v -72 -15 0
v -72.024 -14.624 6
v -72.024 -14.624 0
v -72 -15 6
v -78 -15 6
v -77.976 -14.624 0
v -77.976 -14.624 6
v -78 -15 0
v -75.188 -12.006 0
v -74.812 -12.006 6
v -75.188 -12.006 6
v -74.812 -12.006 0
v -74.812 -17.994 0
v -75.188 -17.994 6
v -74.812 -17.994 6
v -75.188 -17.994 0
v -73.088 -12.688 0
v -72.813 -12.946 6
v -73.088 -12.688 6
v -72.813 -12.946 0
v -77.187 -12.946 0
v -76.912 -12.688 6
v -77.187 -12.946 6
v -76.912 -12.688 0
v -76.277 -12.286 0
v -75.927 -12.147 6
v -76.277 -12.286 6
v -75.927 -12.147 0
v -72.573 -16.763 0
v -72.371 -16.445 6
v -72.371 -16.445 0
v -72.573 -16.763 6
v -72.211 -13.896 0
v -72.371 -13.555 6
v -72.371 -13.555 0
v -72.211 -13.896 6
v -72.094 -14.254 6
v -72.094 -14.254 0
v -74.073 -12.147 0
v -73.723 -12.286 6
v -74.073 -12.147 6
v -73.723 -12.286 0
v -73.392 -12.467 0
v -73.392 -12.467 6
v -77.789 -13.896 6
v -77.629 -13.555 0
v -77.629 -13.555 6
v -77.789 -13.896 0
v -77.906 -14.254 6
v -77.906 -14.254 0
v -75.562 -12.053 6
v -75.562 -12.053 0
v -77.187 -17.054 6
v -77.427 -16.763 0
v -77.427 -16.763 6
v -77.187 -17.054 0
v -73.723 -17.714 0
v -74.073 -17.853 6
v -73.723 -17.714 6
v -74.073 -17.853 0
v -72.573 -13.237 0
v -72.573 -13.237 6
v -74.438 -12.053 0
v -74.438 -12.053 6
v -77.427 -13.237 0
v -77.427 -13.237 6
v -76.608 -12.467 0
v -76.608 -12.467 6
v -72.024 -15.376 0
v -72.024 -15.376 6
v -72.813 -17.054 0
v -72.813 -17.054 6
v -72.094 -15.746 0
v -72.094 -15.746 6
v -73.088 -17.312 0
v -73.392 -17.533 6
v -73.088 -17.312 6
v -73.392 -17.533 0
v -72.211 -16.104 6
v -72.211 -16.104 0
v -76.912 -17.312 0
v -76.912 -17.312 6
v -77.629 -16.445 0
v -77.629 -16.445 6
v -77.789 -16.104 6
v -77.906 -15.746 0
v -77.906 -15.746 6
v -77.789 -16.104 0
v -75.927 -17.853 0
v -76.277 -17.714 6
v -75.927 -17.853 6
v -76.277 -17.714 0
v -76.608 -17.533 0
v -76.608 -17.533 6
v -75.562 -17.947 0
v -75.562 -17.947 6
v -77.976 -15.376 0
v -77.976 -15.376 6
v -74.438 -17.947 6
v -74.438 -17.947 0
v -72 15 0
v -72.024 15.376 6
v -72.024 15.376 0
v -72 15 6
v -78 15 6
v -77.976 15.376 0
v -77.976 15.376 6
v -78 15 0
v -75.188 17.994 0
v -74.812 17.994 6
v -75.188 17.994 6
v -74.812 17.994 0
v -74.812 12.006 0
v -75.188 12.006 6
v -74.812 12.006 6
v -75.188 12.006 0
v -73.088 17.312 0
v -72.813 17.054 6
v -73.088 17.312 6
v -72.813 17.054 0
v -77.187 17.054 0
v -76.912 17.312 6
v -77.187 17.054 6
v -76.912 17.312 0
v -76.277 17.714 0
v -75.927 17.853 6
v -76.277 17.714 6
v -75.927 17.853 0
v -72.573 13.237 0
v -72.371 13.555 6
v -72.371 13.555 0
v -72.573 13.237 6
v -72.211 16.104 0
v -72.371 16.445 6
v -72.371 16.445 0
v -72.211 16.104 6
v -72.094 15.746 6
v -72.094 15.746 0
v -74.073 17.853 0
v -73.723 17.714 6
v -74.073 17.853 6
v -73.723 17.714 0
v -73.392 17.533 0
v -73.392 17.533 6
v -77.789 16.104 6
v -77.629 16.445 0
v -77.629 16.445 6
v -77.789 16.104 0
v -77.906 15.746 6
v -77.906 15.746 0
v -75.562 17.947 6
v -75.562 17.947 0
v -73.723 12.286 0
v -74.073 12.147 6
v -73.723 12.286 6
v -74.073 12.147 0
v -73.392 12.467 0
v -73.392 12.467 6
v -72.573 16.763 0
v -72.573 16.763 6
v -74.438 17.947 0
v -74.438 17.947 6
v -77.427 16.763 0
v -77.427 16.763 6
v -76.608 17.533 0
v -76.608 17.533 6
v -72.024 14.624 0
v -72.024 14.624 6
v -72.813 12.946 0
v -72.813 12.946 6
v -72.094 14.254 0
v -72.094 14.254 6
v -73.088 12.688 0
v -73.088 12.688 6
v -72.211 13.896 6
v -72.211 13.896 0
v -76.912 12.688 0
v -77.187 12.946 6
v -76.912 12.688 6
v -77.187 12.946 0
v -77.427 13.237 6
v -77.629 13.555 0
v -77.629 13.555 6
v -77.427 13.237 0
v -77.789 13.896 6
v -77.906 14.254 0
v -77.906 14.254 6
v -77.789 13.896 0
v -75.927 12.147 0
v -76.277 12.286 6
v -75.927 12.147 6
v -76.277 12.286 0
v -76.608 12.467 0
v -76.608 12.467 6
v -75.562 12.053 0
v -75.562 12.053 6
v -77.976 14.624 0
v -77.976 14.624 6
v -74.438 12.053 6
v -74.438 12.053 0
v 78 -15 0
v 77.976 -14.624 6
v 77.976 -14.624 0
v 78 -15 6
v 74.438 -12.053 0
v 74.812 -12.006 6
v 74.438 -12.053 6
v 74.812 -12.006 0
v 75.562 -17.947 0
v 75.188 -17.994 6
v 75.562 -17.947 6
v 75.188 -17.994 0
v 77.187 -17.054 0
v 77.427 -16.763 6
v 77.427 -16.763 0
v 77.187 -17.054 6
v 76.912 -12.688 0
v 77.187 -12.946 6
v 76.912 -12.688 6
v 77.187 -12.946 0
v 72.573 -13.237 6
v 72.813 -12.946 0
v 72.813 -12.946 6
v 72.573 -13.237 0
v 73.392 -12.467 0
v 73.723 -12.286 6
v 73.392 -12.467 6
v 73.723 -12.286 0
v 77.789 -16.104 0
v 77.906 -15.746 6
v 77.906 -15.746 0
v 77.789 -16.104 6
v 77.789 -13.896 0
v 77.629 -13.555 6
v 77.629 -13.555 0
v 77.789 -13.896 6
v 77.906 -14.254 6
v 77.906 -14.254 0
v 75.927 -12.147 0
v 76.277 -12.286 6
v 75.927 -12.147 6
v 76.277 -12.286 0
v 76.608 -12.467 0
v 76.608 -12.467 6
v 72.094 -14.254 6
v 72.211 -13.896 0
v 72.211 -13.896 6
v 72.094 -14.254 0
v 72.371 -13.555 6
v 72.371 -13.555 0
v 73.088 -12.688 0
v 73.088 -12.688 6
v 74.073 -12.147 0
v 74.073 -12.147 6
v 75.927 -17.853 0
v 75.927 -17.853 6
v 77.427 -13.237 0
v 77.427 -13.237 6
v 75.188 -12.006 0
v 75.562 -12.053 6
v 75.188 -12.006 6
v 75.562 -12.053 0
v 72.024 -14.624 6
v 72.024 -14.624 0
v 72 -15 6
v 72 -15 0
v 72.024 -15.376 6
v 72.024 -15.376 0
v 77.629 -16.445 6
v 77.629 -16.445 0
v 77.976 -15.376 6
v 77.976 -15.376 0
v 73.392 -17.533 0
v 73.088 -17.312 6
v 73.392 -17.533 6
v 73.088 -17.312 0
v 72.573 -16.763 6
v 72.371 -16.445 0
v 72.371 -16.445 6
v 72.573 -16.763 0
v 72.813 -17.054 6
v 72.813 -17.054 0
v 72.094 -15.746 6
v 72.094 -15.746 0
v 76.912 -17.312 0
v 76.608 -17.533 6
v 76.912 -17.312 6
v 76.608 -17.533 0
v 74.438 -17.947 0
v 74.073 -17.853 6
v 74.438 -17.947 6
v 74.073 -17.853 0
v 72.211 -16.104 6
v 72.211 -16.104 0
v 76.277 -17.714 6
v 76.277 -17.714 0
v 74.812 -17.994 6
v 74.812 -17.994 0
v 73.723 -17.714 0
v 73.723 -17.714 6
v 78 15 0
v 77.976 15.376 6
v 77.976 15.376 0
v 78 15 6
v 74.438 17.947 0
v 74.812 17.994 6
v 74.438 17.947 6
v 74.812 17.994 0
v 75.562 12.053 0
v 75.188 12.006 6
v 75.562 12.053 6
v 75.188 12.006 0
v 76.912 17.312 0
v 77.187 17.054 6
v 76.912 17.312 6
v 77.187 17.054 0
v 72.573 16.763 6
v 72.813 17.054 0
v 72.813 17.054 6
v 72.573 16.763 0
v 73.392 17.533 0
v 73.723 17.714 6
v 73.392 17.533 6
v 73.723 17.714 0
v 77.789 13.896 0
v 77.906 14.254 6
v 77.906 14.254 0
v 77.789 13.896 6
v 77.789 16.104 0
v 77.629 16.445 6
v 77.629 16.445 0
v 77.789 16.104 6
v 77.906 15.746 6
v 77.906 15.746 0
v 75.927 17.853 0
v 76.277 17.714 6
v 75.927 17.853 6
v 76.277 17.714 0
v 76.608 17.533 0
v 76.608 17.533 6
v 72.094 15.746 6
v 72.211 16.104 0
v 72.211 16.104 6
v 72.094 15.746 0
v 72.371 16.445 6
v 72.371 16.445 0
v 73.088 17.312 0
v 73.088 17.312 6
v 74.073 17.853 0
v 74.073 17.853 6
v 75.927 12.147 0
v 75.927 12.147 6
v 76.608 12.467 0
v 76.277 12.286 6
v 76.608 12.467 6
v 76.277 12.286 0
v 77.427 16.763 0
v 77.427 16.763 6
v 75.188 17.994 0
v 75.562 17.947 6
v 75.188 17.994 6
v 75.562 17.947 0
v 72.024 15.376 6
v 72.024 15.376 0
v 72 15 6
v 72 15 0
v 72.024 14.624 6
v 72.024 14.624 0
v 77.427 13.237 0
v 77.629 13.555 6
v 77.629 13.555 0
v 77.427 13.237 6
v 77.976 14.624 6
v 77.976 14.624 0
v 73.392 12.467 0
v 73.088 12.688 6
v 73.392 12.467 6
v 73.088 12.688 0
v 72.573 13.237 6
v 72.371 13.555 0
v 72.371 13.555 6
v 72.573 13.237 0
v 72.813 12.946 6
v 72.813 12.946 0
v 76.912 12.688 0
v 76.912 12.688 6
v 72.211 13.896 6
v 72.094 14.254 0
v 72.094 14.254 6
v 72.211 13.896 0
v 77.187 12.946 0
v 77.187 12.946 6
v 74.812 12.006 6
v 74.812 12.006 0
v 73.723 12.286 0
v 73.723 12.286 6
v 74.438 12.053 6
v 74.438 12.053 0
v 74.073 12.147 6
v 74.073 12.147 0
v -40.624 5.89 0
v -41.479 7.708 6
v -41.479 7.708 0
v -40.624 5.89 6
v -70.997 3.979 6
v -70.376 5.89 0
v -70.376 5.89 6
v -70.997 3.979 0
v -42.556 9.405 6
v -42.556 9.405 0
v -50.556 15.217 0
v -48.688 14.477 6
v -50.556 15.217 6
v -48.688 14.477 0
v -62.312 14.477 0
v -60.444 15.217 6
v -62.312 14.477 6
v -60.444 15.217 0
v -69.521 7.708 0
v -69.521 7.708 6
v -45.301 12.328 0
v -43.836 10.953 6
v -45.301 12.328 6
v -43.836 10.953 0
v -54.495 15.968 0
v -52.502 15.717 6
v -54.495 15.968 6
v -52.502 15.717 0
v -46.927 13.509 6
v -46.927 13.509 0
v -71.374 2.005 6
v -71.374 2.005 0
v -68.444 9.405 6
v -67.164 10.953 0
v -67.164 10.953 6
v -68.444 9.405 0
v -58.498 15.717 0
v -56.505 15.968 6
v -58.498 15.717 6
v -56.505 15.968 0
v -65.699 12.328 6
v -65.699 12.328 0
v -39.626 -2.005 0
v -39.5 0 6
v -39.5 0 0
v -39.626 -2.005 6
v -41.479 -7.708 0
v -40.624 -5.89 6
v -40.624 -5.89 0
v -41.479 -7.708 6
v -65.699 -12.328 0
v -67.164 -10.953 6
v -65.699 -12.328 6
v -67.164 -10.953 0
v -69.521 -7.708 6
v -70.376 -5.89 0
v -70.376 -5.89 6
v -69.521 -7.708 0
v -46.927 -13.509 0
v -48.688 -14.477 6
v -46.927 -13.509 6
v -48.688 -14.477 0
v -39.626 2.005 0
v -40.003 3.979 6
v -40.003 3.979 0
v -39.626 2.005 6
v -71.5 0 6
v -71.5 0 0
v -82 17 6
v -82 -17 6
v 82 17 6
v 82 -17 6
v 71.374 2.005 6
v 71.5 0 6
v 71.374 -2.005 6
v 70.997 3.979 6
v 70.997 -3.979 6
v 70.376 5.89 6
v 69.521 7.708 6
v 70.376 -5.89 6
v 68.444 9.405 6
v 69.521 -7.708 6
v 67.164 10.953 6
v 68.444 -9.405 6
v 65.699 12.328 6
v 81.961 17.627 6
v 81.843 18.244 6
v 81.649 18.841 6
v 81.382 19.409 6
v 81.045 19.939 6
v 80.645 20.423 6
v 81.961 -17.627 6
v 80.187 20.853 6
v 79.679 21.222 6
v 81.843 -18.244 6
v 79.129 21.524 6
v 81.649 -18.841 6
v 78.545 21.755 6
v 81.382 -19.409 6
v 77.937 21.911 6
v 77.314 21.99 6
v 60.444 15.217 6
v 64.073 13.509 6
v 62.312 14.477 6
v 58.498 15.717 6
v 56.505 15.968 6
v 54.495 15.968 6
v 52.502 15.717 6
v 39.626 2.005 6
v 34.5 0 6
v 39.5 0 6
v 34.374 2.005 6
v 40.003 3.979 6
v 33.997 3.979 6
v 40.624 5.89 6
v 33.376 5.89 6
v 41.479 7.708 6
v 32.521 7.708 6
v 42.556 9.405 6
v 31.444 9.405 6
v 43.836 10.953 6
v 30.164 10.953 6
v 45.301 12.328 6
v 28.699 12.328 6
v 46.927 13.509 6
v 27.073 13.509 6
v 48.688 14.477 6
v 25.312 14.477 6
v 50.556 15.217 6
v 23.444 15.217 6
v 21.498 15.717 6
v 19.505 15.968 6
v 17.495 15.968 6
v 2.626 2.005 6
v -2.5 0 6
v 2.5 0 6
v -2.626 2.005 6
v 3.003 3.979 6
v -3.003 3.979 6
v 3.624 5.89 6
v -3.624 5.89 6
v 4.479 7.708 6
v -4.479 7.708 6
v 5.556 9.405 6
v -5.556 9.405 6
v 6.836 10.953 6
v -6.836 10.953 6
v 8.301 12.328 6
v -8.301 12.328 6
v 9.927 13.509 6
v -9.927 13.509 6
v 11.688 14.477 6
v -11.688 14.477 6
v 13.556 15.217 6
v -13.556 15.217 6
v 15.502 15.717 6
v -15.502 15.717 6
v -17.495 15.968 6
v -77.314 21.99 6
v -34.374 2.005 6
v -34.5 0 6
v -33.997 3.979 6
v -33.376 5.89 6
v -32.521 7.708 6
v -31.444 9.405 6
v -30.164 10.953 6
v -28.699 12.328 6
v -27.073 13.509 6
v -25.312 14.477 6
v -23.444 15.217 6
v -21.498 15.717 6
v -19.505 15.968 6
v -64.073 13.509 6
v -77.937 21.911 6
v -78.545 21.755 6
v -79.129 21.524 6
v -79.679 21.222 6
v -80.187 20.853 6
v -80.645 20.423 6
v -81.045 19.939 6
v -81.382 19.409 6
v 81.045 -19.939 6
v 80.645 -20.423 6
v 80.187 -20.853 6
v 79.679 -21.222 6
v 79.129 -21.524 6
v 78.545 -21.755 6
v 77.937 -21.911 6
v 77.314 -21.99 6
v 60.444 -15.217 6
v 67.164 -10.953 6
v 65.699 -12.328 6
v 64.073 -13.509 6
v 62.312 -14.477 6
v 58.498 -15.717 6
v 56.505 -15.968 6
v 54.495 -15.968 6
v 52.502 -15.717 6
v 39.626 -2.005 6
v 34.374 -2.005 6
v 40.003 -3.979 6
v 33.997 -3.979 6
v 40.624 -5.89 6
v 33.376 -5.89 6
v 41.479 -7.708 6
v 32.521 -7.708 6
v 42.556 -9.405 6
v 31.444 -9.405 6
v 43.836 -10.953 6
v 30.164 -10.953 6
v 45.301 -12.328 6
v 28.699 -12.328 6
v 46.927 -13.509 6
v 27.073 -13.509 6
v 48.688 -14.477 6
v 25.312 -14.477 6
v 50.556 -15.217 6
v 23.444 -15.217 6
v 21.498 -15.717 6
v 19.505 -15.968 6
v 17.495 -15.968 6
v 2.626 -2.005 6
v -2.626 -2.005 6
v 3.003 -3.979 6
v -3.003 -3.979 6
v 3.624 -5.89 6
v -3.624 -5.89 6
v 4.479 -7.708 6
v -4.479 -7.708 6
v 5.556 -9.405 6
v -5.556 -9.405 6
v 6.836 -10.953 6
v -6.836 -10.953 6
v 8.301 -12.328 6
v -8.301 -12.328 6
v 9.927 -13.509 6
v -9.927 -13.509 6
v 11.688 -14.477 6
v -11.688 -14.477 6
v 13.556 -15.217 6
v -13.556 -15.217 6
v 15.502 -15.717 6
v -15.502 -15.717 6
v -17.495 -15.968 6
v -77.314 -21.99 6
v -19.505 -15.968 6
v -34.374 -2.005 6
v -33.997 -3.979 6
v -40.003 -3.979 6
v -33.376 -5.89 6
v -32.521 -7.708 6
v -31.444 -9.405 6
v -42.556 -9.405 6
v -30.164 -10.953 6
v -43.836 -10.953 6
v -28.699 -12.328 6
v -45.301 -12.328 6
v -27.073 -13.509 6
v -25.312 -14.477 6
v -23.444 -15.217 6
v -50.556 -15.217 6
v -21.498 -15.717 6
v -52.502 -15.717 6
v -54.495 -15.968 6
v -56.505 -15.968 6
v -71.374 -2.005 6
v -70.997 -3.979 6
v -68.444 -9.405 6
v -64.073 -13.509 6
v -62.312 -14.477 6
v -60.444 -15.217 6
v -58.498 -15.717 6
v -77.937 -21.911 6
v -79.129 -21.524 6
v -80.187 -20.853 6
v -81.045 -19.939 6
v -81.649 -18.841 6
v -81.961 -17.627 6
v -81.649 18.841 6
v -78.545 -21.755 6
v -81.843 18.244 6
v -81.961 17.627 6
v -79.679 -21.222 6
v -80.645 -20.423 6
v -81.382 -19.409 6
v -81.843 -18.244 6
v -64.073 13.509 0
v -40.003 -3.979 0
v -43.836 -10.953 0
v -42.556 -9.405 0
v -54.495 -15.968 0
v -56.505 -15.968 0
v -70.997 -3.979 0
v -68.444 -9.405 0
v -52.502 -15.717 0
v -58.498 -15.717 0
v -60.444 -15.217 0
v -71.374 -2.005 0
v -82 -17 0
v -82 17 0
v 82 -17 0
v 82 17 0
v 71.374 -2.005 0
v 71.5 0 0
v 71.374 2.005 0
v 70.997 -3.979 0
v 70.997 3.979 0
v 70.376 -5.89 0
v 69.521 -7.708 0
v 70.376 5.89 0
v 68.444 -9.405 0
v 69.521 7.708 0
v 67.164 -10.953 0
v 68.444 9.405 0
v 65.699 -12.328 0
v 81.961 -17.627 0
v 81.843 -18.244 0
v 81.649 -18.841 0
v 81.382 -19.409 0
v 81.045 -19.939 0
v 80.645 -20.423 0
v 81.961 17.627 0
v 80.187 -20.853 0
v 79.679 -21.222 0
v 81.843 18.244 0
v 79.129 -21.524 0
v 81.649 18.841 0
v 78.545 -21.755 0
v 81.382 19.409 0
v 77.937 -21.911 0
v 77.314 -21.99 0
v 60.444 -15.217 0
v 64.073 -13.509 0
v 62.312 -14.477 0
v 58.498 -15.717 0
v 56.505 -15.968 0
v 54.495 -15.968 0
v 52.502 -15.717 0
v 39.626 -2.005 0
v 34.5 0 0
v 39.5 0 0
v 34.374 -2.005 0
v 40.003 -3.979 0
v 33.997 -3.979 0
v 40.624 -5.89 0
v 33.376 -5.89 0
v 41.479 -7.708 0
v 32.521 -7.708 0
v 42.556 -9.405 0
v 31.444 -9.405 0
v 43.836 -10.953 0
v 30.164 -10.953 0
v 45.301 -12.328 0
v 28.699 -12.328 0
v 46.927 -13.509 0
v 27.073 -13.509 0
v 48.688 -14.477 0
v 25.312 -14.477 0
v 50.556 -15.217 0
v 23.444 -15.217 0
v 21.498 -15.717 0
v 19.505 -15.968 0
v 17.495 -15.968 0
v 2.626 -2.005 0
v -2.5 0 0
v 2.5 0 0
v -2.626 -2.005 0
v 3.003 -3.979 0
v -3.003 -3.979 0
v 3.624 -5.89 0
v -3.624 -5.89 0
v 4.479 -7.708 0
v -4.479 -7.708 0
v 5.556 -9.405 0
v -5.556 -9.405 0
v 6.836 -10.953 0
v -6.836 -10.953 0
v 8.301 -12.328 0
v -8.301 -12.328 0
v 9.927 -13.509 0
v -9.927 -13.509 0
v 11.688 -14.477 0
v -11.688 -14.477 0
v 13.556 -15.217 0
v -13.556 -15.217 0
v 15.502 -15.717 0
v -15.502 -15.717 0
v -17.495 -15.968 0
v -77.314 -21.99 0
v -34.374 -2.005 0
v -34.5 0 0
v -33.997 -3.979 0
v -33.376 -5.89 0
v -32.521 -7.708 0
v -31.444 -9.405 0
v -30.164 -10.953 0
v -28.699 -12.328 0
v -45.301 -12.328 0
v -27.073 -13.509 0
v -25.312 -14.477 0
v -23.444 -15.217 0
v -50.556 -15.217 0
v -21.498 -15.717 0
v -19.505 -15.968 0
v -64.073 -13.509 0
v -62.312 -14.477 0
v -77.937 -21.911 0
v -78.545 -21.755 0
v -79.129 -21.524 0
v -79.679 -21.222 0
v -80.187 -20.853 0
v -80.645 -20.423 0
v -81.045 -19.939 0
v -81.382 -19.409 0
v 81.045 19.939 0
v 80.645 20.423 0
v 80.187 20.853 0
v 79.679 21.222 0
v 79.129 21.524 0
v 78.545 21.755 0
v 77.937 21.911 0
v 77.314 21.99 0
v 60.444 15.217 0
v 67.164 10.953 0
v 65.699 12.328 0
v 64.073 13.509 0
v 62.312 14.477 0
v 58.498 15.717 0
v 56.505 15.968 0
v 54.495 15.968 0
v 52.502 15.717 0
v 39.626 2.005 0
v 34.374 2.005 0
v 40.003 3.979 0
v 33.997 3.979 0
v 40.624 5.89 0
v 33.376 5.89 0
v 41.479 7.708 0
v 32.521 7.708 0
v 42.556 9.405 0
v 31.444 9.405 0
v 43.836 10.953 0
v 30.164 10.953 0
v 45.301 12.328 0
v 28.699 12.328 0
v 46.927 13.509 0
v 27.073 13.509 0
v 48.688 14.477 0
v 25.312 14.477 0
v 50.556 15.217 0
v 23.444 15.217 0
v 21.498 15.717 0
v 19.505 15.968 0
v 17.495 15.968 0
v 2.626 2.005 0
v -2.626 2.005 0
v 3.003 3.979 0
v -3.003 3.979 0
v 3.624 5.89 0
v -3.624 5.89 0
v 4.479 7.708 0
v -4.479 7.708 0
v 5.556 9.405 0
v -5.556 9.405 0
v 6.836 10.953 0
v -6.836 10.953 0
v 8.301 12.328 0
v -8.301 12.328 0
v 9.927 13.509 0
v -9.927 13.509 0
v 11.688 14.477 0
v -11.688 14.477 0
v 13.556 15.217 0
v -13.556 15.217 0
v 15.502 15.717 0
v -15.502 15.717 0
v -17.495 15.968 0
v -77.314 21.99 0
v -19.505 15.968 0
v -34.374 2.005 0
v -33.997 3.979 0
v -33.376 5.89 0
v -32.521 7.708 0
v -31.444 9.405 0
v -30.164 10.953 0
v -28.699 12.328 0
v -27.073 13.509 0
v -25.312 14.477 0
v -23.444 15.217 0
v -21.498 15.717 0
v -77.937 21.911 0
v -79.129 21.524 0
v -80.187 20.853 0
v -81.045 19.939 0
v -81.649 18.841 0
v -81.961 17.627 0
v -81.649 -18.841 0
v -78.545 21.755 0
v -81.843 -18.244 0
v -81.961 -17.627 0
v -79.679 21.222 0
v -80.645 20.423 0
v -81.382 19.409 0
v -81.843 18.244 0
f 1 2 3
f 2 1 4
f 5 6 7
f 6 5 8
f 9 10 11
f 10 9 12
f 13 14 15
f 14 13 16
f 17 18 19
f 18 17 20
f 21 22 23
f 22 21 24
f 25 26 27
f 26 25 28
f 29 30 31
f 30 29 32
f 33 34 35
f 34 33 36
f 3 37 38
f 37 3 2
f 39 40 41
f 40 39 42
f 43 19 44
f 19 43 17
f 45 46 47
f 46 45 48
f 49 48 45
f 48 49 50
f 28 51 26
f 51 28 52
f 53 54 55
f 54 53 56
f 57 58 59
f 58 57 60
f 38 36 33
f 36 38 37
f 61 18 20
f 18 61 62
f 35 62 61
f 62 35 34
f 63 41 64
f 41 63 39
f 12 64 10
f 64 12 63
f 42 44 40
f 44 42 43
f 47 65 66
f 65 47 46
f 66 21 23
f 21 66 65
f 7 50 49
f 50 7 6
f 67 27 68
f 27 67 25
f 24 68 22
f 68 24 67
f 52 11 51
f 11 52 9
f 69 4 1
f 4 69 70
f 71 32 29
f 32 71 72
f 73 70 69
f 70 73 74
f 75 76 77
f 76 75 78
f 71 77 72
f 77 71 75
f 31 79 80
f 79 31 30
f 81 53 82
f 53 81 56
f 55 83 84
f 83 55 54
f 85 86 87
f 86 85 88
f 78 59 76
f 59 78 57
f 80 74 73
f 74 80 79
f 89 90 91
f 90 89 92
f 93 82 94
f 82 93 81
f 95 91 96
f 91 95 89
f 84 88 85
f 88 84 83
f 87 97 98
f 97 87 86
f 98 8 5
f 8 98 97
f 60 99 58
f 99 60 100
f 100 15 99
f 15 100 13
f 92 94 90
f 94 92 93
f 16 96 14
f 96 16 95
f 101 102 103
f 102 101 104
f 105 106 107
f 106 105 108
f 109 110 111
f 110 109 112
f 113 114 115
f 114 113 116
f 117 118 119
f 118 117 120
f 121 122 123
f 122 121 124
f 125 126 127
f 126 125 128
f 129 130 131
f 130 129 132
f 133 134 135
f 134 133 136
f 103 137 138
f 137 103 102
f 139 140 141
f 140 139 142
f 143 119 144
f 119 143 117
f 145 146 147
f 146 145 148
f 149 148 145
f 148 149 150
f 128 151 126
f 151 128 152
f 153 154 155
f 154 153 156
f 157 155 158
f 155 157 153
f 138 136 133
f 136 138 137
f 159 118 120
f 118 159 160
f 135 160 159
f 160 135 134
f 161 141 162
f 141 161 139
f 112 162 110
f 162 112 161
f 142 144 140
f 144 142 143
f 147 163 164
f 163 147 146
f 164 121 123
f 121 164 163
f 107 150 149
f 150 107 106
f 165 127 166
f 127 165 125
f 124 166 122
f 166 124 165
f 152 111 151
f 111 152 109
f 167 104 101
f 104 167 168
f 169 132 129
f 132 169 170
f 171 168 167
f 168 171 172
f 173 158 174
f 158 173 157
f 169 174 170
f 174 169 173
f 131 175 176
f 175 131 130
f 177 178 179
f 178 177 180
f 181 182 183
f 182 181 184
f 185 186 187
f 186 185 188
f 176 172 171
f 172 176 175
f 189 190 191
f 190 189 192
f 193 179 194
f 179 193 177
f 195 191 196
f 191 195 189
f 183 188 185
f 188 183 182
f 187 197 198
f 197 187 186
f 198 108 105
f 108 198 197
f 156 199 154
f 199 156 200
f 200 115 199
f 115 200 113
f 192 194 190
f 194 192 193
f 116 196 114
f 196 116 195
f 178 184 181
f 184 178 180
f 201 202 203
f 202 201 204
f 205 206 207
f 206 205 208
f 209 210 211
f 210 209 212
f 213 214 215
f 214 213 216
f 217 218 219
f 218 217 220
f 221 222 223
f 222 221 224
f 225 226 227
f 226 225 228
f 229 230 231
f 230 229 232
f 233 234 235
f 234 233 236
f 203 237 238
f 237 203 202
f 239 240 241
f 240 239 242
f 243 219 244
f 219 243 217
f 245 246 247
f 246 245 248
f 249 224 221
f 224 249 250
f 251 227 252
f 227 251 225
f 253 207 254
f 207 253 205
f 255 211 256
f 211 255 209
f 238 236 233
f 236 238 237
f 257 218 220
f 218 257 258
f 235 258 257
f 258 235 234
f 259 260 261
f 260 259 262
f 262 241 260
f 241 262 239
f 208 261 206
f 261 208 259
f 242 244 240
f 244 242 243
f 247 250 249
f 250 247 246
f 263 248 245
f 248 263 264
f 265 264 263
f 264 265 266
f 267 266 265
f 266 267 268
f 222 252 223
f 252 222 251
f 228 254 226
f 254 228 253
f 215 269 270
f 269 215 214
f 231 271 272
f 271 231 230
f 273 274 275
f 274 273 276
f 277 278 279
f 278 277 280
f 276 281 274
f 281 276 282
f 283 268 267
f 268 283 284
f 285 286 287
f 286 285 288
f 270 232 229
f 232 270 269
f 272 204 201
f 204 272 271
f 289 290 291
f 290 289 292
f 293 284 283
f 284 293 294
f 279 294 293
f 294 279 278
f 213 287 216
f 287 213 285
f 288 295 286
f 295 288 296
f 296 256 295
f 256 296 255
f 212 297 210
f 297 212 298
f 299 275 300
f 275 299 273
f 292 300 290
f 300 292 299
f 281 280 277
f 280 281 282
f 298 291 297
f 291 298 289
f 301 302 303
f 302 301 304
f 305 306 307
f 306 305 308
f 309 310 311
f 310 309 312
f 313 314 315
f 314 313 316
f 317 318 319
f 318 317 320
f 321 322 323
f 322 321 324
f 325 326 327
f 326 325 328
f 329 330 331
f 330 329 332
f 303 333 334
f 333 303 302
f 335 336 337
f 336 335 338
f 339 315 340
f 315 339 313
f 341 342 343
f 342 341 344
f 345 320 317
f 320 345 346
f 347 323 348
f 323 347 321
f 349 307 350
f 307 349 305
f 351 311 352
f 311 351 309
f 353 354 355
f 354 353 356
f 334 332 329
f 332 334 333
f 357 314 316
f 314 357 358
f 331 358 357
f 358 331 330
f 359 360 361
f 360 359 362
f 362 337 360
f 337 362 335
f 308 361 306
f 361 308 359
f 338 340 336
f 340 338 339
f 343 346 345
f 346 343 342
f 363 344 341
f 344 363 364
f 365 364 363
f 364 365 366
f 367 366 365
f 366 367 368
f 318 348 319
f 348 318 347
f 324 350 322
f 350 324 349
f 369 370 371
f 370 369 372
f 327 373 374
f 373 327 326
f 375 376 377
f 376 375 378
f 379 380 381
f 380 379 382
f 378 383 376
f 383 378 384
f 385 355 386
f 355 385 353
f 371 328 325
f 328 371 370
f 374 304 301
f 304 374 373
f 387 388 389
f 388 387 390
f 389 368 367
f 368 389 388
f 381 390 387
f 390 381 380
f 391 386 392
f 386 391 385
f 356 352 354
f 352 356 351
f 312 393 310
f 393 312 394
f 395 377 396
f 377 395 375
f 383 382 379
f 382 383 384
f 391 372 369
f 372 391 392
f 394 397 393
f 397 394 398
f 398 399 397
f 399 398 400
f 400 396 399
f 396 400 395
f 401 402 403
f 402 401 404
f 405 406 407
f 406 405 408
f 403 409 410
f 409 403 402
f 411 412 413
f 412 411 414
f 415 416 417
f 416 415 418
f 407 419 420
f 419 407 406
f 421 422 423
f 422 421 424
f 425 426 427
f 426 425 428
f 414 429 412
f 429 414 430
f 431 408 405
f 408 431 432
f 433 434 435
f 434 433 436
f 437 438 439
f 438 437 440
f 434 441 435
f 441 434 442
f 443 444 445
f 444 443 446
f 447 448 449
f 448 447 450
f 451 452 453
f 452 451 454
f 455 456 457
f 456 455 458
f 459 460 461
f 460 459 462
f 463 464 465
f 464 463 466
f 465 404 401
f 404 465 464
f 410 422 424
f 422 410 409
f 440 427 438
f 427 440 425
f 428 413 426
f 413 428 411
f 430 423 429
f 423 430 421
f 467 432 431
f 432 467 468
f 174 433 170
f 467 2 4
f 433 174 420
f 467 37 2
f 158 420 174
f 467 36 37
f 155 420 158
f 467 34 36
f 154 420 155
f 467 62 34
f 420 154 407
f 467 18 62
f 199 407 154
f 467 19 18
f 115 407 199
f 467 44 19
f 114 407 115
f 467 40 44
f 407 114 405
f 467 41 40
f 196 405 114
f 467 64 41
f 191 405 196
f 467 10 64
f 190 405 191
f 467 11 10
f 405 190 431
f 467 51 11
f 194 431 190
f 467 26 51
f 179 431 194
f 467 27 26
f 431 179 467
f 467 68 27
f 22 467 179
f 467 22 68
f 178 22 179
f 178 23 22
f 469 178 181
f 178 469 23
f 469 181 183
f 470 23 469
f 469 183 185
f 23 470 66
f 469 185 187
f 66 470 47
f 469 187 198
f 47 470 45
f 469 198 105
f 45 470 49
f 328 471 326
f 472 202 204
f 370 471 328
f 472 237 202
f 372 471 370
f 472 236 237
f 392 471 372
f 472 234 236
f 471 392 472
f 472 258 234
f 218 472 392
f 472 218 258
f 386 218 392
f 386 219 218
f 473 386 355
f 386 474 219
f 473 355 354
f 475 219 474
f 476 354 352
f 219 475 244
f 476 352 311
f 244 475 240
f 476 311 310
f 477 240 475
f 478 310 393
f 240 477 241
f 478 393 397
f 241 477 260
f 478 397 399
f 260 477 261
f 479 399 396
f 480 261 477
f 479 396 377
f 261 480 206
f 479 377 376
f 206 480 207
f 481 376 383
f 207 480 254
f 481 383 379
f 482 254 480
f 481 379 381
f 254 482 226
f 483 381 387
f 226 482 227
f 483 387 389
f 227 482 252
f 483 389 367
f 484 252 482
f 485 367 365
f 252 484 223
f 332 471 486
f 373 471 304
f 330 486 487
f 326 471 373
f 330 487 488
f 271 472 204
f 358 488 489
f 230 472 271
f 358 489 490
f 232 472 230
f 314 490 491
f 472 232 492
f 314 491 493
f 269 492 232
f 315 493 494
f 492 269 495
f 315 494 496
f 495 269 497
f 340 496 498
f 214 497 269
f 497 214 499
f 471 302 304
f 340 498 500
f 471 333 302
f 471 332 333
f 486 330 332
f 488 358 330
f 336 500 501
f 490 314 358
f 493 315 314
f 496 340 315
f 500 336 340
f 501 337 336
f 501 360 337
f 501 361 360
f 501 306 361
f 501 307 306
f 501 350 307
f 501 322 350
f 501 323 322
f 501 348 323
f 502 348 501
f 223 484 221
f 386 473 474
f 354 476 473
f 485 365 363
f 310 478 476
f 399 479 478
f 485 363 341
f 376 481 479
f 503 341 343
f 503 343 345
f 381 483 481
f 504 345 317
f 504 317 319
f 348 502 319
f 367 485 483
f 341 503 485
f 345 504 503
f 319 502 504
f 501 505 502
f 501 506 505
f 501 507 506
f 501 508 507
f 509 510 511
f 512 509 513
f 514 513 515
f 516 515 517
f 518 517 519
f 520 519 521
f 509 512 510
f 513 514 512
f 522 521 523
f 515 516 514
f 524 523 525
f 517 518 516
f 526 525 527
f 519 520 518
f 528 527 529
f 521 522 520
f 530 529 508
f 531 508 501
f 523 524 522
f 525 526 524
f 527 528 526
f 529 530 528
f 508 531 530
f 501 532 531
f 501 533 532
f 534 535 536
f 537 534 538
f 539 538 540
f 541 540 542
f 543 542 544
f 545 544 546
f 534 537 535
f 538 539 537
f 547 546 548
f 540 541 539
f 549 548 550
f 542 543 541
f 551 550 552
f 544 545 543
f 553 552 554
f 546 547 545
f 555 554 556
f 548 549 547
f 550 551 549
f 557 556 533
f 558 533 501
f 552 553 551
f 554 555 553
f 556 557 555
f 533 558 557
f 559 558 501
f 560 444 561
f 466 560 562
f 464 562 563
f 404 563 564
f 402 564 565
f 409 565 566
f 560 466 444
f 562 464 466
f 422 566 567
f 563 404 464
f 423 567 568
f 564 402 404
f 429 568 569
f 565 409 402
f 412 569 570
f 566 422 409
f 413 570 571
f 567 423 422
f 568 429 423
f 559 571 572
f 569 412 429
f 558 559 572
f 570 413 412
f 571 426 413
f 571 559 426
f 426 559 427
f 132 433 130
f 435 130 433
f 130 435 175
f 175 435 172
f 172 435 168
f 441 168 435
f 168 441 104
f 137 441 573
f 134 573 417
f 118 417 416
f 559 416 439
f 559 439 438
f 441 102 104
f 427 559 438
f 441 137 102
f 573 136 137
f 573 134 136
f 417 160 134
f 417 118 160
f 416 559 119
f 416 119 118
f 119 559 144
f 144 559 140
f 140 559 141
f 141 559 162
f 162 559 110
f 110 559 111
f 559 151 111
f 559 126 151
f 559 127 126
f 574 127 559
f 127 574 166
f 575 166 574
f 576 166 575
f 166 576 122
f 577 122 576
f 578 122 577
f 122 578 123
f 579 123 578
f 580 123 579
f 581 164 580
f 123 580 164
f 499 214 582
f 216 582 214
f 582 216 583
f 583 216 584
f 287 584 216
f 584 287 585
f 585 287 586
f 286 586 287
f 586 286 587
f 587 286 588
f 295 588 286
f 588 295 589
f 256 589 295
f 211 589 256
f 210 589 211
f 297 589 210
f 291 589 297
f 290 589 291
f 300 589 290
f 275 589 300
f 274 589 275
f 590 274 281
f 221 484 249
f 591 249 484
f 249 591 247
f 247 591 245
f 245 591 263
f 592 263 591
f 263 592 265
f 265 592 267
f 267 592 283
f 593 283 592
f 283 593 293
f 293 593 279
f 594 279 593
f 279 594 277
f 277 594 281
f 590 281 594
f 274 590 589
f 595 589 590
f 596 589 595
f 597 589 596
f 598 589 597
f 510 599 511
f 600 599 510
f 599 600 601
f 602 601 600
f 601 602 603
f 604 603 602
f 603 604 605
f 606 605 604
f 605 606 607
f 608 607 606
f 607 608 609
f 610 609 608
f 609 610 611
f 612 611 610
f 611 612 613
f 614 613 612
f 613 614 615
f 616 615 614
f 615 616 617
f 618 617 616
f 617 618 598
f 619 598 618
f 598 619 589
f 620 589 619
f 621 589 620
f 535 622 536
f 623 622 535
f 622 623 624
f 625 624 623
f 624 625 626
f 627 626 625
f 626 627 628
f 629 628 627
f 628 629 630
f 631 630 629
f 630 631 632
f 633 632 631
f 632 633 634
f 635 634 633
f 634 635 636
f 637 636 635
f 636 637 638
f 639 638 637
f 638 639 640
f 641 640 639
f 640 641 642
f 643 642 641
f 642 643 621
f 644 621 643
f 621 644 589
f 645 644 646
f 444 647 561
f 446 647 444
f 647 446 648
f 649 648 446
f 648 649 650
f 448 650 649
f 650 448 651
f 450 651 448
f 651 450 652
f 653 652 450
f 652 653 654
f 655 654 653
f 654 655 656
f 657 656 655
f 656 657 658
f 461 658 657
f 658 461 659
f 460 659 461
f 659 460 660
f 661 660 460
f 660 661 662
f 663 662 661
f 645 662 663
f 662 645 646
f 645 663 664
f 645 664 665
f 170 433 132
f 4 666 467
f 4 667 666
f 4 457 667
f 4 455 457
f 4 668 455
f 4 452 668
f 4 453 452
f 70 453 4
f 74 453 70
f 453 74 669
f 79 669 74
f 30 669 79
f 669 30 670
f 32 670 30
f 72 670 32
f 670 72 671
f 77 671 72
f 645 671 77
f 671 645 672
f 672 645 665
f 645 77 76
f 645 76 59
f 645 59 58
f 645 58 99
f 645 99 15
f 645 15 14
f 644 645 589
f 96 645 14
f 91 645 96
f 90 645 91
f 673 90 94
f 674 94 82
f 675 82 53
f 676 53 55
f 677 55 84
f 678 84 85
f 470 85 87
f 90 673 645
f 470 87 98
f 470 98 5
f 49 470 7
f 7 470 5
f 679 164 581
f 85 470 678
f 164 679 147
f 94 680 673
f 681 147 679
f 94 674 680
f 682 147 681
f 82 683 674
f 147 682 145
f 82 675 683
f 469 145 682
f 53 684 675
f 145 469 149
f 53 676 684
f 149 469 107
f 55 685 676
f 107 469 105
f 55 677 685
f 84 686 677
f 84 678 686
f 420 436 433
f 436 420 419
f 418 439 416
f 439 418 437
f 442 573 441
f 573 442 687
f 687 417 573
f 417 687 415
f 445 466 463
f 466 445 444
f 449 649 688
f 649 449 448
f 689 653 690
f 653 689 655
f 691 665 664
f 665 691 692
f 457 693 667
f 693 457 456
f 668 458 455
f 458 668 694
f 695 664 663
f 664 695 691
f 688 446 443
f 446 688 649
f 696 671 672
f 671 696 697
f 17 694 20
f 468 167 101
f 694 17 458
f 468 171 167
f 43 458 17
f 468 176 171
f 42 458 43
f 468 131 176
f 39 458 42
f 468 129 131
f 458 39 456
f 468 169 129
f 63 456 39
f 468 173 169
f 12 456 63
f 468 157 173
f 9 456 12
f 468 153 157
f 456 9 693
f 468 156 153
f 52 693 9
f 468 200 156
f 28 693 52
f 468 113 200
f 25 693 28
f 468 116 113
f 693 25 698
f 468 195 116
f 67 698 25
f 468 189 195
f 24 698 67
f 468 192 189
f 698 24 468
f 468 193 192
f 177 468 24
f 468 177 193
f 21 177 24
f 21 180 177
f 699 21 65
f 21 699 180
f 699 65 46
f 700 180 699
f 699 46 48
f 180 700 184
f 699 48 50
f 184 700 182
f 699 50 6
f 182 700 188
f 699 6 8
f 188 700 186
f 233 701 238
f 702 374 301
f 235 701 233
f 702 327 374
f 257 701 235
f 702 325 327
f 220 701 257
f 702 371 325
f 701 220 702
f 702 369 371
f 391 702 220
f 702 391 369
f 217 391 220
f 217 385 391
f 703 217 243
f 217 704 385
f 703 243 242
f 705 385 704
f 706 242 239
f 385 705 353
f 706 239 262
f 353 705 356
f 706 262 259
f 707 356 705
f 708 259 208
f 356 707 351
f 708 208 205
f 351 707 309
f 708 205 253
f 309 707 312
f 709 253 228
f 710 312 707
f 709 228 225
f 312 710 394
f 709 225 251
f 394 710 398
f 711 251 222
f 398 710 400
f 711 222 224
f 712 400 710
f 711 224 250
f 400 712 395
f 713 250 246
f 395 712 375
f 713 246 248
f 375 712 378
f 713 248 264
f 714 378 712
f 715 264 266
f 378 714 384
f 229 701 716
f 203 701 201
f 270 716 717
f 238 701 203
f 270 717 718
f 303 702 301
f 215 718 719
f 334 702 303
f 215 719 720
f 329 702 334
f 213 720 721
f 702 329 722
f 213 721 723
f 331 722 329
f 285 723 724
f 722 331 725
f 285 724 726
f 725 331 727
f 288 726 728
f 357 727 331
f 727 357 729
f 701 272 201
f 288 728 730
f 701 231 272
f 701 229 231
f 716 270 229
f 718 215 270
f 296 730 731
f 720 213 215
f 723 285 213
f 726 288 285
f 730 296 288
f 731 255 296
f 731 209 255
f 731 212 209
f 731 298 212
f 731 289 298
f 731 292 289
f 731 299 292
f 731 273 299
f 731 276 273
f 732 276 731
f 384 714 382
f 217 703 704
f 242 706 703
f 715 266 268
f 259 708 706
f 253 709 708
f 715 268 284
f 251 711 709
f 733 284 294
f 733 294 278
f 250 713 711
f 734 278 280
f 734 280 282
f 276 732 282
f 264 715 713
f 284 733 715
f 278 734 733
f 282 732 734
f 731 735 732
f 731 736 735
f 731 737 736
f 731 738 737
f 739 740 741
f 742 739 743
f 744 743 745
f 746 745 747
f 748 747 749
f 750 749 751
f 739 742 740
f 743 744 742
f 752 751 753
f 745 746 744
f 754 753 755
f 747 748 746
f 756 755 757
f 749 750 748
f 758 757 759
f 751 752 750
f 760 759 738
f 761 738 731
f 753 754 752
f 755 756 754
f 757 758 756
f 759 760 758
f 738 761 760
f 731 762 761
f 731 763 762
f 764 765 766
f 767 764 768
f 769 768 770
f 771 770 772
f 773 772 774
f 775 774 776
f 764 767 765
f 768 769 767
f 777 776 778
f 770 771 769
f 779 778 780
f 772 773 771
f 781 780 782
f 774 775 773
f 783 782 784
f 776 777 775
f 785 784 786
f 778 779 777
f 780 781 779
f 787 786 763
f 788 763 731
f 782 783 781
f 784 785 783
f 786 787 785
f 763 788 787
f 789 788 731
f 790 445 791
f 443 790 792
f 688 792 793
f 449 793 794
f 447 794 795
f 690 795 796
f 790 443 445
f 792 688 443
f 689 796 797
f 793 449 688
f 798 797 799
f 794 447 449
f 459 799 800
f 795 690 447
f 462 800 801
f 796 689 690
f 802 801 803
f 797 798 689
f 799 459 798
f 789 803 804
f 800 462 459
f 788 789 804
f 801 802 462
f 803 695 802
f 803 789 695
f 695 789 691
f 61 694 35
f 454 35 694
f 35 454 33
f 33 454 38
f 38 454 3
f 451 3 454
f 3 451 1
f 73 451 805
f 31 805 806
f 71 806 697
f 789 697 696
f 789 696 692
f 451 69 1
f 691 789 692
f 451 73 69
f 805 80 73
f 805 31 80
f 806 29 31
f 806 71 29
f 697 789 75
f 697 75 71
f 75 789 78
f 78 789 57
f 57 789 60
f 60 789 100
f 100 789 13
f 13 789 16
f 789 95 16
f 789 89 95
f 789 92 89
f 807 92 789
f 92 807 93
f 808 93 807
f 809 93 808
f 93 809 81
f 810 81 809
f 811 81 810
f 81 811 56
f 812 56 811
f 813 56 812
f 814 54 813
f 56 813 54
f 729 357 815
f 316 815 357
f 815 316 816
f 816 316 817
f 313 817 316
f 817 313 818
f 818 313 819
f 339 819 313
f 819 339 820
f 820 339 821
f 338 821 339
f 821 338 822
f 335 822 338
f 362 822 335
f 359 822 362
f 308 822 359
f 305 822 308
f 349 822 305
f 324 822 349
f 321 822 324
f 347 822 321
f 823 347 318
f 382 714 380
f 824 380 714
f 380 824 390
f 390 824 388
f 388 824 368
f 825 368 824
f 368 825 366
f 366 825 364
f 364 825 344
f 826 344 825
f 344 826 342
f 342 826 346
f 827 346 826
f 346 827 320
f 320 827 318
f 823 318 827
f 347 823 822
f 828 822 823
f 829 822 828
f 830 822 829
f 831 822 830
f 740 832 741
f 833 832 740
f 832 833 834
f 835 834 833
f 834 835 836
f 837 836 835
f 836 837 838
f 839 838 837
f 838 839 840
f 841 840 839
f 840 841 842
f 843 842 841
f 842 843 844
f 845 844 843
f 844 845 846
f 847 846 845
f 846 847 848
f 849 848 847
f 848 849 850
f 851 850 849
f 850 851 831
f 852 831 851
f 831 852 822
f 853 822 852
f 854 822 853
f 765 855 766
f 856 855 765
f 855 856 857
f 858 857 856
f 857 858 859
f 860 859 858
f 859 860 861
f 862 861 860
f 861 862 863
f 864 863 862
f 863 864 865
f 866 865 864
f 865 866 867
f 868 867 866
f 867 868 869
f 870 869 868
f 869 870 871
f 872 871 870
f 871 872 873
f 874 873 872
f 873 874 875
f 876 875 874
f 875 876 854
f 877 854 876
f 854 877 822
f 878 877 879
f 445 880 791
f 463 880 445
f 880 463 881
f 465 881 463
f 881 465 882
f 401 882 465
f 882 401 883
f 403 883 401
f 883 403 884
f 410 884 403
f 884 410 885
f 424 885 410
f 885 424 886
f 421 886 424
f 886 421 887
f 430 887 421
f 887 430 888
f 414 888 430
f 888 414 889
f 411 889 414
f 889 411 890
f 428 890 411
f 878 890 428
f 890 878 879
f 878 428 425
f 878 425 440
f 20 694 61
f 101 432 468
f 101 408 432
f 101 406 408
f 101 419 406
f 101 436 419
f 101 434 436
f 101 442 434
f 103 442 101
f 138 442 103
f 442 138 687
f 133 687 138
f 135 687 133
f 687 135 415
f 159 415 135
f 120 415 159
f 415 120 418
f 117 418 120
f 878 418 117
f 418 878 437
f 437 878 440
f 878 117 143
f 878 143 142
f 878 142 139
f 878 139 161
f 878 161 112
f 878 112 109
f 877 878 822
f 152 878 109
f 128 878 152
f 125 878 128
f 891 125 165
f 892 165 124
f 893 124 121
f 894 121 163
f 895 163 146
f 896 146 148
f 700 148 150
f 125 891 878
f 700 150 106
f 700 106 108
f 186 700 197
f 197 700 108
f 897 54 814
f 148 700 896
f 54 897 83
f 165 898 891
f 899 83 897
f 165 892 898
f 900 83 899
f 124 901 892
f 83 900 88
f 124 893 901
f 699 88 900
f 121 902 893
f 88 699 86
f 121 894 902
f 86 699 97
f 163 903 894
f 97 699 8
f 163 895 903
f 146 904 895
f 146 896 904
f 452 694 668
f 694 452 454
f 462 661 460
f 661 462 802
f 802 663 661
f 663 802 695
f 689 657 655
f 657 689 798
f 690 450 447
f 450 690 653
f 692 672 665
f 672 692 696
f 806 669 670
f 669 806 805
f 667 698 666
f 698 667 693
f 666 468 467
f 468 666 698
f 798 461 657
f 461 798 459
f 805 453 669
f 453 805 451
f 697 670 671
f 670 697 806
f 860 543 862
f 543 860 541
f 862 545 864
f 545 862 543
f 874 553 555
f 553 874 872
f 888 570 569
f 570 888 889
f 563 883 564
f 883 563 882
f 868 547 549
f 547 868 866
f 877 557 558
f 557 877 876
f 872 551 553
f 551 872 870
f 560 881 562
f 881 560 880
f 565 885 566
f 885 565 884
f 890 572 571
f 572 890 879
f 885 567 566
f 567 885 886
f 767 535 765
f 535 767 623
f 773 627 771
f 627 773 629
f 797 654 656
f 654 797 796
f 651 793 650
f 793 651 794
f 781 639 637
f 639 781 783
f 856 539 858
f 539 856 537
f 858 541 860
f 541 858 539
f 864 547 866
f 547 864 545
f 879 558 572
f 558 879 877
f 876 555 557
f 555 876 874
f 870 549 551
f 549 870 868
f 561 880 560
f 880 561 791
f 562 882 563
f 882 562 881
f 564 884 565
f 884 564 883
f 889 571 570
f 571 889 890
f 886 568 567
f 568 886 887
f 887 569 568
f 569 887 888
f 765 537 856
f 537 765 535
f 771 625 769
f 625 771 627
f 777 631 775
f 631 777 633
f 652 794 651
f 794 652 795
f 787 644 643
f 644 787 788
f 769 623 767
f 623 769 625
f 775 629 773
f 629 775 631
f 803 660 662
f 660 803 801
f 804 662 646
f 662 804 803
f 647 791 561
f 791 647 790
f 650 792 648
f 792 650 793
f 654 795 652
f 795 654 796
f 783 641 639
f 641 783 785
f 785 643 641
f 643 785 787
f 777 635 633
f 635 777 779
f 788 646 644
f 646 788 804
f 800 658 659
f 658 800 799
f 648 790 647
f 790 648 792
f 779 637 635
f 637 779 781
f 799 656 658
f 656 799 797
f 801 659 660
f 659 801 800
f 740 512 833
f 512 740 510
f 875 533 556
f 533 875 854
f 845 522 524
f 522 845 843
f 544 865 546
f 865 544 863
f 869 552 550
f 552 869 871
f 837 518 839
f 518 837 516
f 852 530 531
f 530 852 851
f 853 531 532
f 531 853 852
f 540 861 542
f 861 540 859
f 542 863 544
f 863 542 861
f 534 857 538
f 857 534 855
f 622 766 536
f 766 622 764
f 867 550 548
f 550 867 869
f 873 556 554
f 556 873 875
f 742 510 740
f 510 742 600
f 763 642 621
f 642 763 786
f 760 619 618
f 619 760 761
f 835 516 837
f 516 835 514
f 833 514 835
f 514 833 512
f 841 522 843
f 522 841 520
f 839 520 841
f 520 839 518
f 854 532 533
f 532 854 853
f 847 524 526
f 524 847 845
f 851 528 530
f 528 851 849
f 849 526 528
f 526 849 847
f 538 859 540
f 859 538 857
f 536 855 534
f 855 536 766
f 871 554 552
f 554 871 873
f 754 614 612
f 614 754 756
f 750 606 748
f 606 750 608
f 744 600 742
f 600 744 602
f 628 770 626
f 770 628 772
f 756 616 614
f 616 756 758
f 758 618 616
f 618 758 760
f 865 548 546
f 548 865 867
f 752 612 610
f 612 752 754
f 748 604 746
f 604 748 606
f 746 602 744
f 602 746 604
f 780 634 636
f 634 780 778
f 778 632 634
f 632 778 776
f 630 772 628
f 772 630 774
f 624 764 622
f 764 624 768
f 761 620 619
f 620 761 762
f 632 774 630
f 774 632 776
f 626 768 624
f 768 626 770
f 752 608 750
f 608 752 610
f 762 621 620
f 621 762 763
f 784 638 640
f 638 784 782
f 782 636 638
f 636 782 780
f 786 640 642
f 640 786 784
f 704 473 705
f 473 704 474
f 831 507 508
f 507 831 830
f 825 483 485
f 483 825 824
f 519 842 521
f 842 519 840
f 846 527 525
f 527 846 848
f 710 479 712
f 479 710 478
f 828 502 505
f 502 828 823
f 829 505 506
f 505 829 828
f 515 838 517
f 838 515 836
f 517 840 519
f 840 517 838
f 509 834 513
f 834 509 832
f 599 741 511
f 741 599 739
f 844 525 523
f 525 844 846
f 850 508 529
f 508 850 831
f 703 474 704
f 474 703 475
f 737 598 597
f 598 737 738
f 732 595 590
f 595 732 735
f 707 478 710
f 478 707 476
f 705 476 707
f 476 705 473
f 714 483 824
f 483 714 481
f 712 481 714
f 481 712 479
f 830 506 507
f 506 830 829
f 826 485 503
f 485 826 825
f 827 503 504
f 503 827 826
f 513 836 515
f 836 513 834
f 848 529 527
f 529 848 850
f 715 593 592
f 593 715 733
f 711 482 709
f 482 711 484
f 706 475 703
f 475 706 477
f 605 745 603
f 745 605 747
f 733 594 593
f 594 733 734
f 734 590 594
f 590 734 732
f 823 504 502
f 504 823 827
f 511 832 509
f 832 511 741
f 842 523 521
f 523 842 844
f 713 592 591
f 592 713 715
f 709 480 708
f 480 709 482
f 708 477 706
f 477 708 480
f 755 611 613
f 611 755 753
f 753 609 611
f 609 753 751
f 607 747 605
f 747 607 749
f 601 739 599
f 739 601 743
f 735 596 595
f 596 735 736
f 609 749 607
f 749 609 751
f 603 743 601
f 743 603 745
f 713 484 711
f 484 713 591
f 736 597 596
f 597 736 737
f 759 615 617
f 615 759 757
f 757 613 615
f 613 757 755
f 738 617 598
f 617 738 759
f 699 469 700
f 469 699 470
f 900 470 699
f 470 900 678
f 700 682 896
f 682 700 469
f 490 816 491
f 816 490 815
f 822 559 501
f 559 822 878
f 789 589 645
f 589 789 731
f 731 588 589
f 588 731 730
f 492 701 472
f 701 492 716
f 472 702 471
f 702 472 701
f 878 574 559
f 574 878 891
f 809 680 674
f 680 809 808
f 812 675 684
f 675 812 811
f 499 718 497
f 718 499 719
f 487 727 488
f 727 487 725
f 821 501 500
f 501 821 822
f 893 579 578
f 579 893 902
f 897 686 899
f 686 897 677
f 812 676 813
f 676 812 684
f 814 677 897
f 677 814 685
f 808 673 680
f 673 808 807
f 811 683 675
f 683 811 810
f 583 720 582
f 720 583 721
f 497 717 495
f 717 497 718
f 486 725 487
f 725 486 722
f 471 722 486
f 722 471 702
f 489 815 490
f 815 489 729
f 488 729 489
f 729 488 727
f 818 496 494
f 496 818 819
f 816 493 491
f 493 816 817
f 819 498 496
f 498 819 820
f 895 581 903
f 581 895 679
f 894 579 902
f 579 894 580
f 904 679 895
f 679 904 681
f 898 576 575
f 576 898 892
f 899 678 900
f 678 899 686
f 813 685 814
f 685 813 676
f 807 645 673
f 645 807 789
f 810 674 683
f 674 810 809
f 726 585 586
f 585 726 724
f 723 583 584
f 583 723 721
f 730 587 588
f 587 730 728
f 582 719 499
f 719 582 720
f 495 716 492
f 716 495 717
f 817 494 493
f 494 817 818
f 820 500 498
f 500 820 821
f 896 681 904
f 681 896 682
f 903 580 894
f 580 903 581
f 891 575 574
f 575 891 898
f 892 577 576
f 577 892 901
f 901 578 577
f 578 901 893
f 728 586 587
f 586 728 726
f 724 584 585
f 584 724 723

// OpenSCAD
$fn = 50;


difference() {
	union() {
		hull() {
			translate(v = [-77.0000000000, 17.0000000000, 0]) {
				cylinder(h = 6, r = 5);
			}
			translate(v = [77.0000000000, 17.0000000000, 0]) {
				cylinder(h = 6, r = 5);
			}
			translate(v = [-77.0000000000, -17.0000000000, 0]) {
				cylinder(h = 6, r = 5);
			}
			translate(v = [77.0000000000, -17.0000000000, 0]) {
				cylinder(h = 6, r = 5);
			}
		}
	}
	union() {
		#translate(v = [-75.0000000000, -15.0000000000, -100.0000000000]) {
			cylinder(h = 200, r = 3.0000000000);
		}
		#translate(v = [-75.0000000000, 15.0000000000, -100.0000000000]) {
			cylinder(h = 200, r = 3.0000000000);
		}
		#translate(v = [75.0000000000, -15.0000000000, -100.0000000000]) {
			cylinder(h = 200, r = 3.0000000000);
		}
		#translate(v = [75.0000000000, 15.0000000000, -100.0000000000]) {
			cylinder(h = 200, r = 3.0000000000);
		}
		#translate(v = [-55.5000000000, 0, 0]) {
			cylinder(h = 6, r = 16.0000000000);
		}
		#translate(v = [-18.5000000000, 0, 0]) {
			cylinder(h = 6, r = 16.0000000000);
		}
		#translate(v = [18.5000000000, 0, 0]) {
			cylinder(h = 6, r = 16.0000000000);
		}
		#translate(v = [55.5000000000, 0, 0]) {
			cylinder(h = 6, r = 16.0000000000);
		}
	}
}
